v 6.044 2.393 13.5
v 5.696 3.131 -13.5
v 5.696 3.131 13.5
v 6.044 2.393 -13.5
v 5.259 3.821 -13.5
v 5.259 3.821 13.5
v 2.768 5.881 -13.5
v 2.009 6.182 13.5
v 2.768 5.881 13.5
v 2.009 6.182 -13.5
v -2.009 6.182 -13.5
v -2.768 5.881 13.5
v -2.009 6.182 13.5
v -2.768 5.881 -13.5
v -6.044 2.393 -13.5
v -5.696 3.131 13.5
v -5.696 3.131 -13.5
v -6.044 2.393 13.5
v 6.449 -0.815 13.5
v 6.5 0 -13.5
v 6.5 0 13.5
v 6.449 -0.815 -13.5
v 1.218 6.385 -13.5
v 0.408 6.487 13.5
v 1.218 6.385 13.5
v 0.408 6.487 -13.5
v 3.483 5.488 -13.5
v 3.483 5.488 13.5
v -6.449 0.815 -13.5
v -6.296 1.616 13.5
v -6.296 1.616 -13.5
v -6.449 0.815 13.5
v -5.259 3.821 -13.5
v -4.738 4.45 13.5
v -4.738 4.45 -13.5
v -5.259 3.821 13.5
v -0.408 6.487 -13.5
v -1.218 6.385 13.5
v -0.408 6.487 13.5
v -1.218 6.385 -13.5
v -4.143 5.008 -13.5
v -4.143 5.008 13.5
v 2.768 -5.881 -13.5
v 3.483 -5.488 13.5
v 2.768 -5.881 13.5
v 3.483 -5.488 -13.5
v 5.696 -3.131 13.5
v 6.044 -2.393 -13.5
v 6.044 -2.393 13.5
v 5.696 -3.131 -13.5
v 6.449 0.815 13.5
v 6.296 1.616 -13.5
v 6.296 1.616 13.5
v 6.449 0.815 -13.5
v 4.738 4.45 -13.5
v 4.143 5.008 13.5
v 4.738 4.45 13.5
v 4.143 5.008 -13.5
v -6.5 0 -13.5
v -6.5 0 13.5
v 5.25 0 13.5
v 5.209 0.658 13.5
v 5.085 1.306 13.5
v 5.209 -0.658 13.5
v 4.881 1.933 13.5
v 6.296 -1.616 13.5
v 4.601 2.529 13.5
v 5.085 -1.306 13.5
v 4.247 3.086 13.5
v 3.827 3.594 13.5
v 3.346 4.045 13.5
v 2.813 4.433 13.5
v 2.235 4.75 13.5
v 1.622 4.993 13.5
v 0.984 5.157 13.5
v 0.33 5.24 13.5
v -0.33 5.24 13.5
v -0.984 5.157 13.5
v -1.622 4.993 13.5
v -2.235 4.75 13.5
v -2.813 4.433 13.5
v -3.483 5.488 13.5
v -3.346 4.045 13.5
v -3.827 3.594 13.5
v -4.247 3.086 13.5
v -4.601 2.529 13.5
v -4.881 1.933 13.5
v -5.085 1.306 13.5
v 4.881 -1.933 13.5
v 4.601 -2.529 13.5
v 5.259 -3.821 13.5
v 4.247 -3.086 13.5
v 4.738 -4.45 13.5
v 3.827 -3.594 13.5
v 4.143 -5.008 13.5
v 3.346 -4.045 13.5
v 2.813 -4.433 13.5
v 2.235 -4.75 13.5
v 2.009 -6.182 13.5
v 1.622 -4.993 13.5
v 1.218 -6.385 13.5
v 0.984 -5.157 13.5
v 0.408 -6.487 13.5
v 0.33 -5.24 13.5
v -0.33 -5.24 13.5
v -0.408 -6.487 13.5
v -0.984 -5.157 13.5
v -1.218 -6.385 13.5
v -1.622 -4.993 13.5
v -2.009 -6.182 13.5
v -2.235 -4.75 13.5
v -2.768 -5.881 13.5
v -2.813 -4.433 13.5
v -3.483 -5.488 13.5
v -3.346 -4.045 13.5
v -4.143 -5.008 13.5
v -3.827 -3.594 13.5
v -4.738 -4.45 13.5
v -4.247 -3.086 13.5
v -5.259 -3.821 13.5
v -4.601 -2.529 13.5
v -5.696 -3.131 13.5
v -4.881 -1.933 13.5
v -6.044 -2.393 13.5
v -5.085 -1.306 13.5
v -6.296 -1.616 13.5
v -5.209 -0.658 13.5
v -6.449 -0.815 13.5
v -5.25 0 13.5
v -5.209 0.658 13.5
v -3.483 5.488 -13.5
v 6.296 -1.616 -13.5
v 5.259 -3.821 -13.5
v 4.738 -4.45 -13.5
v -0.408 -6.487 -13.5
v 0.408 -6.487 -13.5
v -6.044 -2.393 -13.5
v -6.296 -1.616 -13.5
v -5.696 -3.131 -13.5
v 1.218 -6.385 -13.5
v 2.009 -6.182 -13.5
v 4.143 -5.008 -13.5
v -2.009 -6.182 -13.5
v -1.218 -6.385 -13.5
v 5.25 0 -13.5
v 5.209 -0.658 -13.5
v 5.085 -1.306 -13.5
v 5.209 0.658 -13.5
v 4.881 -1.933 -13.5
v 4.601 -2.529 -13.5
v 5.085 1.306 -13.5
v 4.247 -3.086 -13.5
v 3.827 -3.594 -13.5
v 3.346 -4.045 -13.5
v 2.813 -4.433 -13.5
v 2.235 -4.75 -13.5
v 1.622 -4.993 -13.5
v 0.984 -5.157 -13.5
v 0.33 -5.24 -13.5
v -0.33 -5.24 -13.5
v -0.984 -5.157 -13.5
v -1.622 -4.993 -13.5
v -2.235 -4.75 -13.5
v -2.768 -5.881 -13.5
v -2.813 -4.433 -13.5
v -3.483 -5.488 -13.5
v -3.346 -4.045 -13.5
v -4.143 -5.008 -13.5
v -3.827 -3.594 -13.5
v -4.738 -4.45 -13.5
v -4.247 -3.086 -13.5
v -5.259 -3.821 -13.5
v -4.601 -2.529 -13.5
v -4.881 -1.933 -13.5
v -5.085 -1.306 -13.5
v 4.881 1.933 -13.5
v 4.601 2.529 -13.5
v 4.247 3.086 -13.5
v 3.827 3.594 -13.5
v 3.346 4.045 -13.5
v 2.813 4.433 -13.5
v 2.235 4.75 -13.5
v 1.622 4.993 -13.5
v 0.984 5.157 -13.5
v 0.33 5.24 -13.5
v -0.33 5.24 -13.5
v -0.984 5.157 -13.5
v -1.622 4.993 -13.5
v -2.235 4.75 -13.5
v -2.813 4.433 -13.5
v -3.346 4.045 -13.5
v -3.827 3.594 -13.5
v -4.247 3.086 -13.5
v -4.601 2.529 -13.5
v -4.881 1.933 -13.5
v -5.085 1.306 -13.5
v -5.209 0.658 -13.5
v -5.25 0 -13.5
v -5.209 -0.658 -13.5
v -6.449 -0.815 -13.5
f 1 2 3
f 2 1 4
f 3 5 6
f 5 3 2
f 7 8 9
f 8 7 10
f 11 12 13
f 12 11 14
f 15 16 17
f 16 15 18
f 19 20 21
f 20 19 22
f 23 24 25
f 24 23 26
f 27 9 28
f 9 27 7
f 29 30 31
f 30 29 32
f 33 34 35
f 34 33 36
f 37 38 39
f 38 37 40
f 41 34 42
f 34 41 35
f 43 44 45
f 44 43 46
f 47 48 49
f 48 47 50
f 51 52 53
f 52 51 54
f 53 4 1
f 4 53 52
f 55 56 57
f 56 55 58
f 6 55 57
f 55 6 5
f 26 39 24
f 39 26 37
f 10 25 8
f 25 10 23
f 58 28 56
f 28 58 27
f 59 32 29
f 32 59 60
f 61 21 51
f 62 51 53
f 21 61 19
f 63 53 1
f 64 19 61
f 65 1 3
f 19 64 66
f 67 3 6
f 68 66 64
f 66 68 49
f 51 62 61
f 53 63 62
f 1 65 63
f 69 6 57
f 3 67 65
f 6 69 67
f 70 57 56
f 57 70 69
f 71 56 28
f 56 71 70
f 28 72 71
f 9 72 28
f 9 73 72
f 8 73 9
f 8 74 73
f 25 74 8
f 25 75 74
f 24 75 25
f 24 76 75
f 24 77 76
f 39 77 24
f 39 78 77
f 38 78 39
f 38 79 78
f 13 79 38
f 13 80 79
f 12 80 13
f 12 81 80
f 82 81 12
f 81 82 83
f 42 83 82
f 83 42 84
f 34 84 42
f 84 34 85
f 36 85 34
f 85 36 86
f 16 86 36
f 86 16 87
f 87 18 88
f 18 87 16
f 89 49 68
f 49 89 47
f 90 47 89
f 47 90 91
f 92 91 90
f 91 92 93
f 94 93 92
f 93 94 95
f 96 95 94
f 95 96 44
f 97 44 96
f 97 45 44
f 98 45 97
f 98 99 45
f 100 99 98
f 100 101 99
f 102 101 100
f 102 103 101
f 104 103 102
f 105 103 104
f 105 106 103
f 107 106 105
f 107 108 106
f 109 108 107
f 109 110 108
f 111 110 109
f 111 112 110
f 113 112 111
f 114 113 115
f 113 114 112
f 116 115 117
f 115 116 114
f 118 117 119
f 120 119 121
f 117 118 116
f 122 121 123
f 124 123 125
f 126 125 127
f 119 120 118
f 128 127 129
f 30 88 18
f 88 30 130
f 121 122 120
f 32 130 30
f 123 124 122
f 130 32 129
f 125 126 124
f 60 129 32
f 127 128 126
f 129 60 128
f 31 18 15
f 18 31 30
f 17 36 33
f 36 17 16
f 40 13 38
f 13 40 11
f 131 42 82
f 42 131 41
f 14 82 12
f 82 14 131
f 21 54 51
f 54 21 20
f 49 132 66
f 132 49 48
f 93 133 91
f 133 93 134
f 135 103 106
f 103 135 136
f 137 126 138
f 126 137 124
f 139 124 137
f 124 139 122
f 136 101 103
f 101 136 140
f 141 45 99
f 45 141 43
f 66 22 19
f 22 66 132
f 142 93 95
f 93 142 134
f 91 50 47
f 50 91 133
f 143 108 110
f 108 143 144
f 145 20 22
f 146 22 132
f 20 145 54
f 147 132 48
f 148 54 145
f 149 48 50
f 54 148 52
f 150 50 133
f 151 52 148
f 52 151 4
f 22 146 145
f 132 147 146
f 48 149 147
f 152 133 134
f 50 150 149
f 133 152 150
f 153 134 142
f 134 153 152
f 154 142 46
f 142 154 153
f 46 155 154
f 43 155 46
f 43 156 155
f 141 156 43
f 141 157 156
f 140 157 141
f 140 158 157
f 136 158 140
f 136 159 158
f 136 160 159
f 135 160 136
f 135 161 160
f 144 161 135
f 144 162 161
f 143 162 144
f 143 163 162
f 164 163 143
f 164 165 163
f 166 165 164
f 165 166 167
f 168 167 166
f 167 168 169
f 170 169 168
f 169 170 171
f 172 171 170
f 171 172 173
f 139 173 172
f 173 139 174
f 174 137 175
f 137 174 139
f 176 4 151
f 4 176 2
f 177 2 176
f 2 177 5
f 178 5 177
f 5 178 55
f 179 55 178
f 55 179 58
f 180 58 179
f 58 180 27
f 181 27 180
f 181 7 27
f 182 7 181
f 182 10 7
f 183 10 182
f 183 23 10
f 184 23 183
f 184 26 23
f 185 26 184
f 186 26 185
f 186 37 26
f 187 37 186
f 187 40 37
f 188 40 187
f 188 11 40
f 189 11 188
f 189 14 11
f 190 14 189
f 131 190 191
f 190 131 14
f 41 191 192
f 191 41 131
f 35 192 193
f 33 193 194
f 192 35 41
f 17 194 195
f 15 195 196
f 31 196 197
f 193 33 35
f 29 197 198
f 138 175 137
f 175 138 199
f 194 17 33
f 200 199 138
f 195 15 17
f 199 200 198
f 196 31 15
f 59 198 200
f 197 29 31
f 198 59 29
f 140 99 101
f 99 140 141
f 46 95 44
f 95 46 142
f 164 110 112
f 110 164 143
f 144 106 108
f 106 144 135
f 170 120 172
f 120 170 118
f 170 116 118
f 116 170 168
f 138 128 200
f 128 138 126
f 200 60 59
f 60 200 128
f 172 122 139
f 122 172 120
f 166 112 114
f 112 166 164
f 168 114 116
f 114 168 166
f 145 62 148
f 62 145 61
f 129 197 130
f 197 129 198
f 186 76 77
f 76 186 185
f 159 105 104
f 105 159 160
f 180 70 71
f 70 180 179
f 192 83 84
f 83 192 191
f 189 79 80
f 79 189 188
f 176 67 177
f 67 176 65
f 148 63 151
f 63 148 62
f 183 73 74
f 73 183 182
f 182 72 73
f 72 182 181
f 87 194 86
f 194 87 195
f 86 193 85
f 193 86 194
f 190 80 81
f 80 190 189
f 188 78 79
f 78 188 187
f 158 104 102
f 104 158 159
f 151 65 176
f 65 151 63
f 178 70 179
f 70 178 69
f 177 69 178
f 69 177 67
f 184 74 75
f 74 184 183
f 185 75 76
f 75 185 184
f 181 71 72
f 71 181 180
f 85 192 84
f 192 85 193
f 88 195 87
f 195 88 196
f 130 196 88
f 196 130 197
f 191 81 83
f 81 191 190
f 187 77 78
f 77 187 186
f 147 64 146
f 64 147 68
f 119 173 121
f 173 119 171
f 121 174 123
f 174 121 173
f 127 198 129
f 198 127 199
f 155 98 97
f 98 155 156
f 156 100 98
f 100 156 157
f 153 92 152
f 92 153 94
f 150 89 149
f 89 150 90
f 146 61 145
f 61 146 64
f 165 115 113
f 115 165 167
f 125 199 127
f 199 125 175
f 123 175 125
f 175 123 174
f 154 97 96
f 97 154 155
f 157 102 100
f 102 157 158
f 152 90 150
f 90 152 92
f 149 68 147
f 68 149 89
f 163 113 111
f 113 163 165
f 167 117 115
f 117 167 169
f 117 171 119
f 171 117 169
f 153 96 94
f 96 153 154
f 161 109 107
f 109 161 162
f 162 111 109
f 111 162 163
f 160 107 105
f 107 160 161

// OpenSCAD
$fn = 50;


difference() {
	union() {
		translate(v = [0, 0, -13.5000000000]) {
			cylinder(h = 27, r = 6.5000000000);
		}
	}
	union() {
		translate(v = [0, 0, -100.0000000000]) {
			cylinder(h = 200, r = 5.2500000000);
		}
	}
}
